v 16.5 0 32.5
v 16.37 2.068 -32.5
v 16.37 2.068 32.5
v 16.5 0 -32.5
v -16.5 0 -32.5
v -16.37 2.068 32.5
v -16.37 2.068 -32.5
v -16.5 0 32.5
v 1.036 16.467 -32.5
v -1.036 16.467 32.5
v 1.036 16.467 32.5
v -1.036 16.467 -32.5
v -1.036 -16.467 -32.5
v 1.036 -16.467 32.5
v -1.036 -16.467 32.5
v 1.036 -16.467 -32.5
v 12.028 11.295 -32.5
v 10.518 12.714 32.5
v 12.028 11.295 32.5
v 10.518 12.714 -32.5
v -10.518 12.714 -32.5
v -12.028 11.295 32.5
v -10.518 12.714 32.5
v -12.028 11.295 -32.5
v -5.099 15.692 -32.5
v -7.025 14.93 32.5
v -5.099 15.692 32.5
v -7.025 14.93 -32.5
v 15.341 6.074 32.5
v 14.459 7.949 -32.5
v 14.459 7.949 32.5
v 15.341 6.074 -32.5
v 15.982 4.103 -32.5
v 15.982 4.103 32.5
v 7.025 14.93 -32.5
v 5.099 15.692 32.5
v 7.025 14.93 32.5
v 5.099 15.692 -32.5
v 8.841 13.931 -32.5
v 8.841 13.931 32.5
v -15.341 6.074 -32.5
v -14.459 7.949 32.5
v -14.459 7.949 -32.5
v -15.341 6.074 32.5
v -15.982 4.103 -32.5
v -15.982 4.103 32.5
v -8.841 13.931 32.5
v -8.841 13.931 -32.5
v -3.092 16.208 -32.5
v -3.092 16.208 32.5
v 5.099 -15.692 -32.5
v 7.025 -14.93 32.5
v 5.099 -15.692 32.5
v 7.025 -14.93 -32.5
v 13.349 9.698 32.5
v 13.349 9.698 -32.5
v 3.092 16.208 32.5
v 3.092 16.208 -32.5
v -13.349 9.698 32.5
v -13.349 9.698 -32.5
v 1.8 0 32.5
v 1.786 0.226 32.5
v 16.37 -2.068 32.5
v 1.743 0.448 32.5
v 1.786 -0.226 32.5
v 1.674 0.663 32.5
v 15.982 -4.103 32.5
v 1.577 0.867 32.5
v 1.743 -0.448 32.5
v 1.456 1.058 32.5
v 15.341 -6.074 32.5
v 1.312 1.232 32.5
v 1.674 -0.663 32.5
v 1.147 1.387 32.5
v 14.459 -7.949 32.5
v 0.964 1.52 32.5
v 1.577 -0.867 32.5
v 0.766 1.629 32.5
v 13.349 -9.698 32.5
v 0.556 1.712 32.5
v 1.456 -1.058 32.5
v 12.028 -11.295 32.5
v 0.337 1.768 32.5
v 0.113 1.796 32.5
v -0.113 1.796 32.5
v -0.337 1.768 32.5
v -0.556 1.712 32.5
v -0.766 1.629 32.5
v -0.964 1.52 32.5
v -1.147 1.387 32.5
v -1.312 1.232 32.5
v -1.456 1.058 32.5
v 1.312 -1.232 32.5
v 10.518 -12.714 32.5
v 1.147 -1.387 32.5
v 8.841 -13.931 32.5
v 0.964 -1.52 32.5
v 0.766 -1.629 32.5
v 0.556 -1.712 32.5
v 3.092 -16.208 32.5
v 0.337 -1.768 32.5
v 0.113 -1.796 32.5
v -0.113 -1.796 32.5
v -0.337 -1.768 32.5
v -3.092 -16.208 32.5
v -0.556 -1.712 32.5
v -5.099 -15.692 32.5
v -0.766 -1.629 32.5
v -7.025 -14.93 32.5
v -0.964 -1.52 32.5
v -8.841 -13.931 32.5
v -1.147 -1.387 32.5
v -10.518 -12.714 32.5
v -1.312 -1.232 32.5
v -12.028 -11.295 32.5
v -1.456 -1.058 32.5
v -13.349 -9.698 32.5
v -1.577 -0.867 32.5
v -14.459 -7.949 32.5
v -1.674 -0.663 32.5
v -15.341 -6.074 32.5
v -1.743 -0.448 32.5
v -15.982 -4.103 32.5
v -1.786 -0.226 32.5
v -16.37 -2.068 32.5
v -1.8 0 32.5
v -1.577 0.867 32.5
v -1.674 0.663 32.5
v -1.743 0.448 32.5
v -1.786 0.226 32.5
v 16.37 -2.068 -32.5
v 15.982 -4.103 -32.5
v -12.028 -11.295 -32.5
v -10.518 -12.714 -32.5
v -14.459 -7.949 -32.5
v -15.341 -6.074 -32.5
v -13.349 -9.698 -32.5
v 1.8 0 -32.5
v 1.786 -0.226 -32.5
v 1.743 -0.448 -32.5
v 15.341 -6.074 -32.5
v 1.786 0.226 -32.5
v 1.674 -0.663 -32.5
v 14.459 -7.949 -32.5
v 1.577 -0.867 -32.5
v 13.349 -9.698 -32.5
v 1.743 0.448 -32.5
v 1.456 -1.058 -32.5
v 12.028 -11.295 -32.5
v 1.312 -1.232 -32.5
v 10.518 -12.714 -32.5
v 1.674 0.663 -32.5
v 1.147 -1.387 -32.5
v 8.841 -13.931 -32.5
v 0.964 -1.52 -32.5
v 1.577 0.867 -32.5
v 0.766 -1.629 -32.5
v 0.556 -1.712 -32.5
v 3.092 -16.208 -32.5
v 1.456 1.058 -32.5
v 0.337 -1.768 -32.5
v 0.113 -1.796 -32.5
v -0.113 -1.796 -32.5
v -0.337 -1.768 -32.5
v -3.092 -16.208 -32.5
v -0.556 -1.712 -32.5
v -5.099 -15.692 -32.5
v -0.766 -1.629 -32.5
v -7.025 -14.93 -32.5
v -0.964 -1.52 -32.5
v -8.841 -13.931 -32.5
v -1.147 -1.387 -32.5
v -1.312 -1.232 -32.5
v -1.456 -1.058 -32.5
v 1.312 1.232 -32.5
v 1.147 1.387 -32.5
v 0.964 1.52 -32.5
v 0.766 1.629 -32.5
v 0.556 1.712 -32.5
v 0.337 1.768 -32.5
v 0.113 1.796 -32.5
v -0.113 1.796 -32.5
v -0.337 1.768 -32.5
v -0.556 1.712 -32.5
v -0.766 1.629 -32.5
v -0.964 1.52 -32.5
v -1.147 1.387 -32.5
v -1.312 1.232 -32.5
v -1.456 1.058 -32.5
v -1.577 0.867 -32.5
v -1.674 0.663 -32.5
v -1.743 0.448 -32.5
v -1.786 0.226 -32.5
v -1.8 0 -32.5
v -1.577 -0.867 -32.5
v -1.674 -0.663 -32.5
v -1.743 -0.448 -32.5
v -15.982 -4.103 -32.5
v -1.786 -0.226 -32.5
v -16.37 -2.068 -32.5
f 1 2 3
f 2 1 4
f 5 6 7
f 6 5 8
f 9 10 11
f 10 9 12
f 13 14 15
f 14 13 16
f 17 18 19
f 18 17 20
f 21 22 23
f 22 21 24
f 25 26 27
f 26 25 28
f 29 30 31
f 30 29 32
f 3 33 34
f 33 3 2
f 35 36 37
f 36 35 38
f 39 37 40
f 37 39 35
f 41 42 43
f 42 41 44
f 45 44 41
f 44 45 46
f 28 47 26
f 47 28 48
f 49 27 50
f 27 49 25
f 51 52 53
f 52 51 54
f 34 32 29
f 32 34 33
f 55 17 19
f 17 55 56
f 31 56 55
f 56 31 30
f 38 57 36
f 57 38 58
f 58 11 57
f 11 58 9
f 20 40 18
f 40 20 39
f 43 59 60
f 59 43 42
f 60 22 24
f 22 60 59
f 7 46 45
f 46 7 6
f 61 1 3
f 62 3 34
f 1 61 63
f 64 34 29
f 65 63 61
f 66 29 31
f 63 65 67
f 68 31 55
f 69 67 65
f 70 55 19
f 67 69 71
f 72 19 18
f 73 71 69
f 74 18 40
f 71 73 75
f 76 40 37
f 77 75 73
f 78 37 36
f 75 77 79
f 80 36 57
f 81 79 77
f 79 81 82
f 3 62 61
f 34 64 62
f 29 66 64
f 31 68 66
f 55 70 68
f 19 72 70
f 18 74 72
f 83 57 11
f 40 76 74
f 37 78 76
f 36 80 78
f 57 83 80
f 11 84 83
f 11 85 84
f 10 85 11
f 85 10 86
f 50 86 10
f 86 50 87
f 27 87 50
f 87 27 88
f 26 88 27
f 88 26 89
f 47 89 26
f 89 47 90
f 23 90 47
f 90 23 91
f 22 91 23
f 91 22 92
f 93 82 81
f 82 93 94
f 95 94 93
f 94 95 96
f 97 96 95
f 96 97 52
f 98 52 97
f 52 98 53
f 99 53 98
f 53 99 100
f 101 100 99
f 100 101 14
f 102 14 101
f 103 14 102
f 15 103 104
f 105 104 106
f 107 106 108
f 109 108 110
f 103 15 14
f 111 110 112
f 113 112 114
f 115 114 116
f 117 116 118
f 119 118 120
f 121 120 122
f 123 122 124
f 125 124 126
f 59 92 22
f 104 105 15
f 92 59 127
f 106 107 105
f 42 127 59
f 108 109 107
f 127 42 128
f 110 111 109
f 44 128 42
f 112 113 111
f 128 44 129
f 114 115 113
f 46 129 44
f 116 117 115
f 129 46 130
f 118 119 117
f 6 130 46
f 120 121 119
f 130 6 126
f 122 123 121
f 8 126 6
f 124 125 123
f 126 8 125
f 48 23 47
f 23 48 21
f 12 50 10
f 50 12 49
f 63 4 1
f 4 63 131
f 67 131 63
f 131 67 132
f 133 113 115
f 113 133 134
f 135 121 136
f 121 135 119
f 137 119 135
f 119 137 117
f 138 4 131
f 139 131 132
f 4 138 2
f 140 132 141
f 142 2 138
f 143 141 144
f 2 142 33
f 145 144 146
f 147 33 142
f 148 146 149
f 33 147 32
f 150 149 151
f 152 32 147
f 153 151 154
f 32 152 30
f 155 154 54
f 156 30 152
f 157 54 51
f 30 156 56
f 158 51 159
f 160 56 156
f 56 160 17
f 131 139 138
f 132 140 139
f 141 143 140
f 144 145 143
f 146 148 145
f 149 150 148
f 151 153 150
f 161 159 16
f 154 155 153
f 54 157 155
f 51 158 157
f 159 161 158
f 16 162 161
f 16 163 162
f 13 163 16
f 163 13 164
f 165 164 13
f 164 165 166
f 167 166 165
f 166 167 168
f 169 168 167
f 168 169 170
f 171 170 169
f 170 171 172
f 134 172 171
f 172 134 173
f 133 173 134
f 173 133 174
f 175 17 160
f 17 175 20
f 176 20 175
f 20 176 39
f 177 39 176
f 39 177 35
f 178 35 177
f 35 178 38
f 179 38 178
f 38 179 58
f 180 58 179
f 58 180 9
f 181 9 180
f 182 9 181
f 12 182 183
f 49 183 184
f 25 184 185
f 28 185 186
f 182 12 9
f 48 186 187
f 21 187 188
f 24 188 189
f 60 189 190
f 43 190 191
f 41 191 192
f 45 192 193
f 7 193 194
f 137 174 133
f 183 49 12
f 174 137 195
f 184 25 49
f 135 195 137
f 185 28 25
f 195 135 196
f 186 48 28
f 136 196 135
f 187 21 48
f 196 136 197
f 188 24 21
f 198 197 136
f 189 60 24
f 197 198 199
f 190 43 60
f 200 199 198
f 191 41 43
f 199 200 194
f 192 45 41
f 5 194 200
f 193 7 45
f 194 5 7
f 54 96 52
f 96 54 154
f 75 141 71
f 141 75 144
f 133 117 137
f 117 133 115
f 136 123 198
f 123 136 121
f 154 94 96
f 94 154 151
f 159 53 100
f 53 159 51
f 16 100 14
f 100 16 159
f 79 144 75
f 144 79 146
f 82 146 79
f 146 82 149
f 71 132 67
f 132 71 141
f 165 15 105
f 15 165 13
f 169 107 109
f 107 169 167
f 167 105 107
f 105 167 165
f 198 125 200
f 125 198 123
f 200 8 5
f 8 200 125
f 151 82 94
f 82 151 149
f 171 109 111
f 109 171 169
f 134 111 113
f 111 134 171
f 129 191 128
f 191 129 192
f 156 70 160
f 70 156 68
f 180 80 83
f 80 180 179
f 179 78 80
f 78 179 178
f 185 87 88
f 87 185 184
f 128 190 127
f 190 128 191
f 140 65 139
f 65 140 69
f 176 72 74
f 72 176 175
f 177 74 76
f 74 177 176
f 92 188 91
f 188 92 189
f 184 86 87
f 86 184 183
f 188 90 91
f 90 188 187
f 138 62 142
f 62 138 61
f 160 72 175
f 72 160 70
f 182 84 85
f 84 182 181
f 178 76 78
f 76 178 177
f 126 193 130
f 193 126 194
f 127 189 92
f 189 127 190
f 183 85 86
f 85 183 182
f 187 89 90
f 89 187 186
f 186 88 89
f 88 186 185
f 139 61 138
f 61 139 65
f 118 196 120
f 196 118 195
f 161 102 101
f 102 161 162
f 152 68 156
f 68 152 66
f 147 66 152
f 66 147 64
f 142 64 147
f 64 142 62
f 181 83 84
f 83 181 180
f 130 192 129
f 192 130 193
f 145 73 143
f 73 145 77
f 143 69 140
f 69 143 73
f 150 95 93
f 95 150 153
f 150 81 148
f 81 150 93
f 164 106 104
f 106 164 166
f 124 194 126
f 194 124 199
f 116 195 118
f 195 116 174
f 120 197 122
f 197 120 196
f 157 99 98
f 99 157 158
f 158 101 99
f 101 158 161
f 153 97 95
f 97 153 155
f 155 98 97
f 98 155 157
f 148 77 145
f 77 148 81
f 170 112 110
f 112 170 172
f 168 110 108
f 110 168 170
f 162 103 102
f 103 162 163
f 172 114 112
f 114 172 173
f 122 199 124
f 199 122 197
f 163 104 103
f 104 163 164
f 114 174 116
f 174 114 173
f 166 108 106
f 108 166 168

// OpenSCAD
$fn = 50;


difference() {
	union() {
		translate(v = [0, 0, -32.5000000000]) {
			cylinder(h = 65, r = 16.5000000000);
		}
	}
	union() {
		translate(v = [0, 0, -100.0000000000]) {
			cylinder(h = 200, r = 1.8000000000);
		}
	}
}
